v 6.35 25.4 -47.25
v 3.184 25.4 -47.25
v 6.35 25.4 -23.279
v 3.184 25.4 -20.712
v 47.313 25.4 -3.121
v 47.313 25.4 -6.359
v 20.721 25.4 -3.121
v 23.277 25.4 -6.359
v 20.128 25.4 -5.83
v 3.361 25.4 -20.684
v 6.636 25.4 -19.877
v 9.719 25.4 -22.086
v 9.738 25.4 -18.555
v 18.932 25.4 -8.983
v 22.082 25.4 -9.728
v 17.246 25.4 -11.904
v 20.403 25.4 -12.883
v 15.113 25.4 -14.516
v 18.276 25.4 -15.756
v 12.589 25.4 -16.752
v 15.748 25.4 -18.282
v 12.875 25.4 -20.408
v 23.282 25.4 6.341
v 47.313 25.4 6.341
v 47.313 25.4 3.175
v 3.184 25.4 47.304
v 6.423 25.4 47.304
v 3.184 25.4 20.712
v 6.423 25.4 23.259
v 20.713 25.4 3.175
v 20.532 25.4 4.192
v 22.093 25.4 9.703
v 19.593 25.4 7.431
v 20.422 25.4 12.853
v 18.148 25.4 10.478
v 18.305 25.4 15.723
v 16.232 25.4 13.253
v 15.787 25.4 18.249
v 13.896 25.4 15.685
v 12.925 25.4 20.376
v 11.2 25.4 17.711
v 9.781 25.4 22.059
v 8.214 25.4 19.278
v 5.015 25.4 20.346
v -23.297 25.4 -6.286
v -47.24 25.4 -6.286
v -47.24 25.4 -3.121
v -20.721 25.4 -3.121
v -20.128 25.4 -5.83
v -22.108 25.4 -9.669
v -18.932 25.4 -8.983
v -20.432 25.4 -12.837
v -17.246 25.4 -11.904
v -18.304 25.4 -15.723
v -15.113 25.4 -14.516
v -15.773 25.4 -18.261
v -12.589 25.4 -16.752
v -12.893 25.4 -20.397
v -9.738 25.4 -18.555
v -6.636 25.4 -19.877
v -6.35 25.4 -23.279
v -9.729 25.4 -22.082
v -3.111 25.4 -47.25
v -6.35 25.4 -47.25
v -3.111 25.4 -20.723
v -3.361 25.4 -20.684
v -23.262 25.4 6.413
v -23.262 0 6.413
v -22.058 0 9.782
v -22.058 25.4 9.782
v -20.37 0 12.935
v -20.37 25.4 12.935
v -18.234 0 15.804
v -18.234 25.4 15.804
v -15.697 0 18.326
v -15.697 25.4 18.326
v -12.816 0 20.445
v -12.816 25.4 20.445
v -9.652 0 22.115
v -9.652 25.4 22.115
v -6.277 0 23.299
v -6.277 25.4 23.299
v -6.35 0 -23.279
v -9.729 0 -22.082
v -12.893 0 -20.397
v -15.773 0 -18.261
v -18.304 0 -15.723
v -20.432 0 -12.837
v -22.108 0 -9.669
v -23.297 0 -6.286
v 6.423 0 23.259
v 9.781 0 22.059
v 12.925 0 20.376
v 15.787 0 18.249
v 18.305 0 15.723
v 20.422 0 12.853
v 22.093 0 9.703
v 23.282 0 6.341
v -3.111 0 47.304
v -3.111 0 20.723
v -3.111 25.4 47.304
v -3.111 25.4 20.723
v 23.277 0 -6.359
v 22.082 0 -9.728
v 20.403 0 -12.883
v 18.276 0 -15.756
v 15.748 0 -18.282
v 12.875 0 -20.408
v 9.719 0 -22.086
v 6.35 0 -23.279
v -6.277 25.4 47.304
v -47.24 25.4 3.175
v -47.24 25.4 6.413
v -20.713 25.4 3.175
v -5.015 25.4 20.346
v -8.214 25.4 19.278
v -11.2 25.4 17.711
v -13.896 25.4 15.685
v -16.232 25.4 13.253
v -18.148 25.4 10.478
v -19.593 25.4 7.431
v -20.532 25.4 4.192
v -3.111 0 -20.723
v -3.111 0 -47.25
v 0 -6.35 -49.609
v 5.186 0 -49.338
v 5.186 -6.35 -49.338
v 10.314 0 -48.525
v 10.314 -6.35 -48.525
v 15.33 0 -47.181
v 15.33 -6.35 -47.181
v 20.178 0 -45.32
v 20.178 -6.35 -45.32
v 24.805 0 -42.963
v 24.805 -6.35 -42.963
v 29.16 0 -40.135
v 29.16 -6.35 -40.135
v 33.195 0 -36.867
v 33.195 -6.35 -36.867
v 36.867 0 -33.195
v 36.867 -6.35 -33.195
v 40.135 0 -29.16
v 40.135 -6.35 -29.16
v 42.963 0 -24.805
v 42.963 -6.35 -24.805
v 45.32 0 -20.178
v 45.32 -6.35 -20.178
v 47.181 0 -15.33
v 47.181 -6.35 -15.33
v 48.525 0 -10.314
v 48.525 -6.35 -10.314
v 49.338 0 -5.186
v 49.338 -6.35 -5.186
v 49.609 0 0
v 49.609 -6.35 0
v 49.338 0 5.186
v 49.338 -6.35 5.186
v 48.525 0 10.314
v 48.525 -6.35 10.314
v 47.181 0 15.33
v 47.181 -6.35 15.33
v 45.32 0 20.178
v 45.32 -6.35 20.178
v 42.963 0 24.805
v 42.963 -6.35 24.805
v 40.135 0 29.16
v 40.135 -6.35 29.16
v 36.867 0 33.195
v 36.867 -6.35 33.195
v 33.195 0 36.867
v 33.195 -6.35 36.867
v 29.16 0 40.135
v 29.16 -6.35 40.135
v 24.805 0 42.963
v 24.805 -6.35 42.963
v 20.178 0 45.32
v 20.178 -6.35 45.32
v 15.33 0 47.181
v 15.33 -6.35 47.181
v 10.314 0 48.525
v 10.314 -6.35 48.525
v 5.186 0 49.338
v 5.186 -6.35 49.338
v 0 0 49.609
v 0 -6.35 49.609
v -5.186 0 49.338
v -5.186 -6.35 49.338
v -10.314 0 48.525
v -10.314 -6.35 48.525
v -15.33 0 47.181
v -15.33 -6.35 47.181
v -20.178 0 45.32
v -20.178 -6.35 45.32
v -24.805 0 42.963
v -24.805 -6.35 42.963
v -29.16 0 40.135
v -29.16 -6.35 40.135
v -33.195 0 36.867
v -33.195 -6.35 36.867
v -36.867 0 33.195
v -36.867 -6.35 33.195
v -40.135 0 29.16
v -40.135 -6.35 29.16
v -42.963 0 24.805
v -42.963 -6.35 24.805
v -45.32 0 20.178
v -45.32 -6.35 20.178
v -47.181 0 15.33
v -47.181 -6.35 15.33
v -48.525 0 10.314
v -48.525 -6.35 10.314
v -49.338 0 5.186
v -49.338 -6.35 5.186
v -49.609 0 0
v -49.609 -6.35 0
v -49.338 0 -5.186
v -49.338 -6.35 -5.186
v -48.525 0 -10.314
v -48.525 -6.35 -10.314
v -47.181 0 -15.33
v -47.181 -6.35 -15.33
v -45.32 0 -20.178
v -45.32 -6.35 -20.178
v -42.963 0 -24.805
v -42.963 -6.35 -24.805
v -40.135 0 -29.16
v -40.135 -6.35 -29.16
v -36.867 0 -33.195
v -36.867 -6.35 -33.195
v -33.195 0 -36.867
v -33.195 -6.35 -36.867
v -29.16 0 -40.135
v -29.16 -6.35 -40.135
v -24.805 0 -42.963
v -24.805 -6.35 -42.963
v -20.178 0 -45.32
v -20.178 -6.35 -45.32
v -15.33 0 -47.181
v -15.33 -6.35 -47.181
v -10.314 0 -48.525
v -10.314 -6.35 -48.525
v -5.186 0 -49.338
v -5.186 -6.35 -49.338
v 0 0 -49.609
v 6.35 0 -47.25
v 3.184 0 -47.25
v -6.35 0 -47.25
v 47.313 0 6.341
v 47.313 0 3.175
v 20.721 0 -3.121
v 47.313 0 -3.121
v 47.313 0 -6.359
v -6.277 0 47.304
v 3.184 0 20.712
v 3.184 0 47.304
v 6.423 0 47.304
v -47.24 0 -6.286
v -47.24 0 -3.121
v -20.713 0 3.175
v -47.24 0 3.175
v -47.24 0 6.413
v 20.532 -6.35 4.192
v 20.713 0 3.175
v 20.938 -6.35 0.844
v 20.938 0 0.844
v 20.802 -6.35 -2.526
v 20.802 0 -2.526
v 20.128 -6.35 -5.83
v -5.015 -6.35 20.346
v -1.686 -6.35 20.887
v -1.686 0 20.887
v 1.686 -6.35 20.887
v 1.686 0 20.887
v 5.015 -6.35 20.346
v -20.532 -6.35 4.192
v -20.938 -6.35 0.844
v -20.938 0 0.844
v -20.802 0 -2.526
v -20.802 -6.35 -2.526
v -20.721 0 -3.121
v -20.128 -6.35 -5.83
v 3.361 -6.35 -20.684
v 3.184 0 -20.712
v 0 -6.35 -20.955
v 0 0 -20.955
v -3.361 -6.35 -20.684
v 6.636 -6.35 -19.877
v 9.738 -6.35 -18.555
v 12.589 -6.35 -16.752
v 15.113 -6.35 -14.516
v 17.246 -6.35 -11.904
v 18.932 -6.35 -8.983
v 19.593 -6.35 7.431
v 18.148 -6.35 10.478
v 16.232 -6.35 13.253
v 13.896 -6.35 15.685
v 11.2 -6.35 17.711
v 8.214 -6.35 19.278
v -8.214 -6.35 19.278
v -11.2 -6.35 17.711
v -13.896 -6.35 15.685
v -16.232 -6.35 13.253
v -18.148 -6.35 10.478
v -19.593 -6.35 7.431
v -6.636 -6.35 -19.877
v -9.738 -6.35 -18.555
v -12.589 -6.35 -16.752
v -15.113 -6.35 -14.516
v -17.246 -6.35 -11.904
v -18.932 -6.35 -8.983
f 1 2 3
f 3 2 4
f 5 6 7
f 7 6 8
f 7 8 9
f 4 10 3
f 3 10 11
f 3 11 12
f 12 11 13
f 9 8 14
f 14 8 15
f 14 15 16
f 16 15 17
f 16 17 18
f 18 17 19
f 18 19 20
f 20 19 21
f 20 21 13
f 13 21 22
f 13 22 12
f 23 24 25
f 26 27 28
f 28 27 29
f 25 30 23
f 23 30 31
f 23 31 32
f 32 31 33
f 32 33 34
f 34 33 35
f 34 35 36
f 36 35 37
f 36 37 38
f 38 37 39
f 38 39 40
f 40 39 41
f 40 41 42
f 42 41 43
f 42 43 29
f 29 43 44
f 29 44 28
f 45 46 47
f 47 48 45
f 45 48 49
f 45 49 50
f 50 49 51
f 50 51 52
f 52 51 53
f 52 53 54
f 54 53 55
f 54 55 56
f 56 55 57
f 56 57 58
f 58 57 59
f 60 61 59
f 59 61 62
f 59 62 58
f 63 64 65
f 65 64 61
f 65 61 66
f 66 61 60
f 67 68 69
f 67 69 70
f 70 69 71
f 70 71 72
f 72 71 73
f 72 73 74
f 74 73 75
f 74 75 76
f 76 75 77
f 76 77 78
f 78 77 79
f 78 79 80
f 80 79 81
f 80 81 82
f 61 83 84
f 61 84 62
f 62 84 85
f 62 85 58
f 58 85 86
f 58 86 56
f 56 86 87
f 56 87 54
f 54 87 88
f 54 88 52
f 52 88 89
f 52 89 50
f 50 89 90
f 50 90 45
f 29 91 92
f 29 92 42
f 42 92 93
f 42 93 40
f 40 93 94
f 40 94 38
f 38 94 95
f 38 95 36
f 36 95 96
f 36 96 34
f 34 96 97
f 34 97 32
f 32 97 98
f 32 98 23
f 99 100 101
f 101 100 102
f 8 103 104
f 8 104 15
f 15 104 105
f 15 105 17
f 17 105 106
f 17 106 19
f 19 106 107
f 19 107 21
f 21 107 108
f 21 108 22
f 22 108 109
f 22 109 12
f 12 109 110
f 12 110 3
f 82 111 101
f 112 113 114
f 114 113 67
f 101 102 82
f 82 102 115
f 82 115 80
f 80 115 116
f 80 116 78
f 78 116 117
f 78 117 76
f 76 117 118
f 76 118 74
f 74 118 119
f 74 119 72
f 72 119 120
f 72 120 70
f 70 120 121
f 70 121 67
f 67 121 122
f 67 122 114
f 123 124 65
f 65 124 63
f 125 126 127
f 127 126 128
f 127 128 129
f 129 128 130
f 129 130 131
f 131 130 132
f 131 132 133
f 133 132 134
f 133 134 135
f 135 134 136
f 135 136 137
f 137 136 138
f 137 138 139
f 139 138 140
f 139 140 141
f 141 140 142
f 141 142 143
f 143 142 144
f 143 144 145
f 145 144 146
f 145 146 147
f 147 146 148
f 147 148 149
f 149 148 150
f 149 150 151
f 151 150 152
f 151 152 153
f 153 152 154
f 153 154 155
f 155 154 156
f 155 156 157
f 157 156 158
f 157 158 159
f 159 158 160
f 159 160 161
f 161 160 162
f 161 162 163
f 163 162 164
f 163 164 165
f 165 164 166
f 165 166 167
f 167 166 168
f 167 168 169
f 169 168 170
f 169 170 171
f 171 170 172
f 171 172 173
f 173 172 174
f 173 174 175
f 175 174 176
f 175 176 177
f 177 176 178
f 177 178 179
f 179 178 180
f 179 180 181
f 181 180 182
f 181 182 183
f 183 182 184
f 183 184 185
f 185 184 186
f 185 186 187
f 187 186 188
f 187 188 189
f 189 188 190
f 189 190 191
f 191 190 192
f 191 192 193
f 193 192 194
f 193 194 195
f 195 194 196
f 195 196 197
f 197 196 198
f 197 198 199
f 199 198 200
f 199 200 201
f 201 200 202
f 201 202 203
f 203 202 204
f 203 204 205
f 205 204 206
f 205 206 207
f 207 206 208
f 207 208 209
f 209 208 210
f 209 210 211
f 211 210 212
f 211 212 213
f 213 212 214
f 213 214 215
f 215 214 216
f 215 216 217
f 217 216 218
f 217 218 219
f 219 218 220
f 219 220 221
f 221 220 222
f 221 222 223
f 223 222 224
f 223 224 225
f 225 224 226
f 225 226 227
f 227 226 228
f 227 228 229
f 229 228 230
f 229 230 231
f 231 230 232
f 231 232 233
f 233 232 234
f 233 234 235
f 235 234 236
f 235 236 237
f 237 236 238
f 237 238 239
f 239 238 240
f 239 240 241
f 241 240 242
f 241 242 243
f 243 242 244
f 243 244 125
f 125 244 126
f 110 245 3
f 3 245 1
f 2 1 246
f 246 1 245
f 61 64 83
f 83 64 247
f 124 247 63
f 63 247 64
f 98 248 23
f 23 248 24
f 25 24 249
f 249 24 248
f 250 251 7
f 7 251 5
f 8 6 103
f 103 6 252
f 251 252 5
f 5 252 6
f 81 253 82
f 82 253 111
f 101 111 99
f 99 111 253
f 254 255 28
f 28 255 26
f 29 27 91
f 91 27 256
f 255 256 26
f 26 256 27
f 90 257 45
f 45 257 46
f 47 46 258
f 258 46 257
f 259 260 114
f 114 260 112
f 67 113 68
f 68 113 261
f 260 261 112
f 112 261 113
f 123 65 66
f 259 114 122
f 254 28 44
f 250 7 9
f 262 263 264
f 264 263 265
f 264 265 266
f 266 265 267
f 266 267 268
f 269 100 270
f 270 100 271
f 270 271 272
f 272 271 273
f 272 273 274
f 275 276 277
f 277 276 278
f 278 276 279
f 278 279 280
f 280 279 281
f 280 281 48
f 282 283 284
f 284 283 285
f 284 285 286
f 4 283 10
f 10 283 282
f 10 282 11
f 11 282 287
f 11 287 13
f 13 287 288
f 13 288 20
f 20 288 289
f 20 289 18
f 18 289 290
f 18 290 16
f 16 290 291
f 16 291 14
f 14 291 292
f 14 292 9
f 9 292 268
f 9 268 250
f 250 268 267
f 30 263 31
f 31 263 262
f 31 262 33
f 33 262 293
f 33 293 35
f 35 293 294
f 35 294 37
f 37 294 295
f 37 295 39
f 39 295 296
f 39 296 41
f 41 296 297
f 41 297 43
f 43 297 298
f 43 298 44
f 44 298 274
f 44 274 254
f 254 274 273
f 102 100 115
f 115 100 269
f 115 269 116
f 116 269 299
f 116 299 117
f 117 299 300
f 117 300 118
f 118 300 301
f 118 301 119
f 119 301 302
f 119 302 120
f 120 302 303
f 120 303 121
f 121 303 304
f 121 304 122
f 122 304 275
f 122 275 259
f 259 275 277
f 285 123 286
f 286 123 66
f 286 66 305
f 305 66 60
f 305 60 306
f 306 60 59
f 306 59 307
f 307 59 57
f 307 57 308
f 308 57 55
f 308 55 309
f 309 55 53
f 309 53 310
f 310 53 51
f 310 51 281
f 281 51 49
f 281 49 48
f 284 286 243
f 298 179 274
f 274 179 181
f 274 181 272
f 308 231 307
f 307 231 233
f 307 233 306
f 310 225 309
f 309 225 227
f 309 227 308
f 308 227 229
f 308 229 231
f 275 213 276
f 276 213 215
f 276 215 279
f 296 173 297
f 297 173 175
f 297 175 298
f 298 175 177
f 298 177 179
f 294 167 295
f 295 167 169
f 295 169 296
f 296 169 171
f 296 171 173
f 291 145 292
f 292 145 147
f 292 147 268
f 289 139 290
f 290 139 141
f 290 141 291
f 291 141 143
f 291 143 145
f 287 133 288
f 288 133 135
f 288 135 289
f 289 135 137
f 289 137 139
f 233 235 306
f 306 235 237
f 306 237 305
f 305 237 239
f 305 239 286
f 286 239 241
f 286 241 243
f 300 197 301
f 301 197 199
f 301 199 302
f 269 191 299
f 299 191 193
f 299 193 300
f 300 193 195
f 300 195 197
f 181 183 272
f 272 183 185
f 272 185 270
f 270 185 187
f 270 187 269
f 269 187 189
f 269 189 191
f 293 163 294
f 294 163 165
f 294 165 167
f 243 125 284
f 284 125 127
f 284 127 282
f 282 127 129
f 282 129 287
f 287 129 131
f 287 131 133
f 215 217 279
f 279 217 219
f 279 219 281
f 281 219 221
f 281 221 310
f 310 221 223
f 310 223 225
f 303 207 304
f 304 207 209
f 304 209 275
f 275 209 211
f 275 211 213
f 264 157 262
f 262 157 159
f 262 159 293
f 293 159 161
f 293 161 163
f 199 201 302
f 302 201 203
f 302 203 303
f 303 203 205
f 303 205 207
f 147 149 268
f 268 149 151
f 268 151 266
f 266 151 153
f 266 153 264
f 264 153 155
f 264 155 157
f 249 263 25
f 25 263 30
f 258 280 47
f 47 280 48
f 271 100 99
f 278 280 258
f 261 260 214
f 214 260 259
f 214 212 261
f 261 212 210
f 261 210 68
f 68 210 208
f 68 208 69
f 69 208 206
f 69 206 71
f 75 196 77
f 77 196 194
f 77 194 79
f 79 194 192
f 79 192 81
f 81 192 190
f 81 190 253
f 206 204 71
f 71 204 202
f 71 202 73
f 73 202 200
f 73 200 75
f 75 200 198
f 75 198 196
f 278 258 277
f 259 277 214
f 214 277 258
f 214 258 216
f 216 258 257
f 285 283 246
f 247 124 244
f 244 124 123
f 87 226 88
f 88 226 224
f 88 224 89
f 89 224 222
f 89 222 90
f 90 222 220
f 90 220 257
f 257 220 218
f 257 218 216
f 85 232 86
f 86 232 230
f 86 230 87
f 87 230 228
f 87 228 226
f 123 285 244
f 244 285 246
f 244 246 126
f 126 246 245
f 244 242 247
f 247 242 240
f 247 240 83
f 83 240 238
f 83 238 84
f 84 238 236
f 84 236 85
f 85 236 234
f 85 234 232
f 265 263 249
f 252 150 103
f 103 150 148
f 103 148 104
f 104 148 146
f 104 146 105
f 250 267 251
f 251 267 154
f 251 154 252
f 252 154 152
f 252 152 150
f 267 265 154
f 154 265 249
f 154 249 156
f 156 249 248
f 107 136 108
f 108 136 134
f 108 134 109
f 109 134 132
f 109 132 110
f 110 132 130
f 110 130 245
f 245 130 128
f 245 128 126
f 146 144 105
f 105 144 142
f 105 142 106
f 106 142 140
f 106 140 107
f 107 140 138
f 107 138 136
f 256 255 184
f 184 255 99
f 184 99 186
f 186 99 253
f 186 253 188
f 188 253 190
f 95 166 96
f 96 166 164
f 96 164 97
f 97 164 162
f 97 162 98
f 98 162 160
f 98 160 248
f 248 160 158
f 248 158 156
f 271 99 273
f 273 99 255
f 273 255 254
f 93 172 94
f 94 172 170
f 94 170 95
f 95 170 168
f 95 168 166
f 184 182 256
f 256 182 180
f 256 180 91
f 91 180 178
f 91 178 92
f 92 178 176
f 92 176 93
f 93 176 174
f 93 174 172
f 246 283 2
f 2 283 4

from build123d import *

# Parameters (mm, degrees)
SKETCH1_R           = 24.13
SKETCH1_R_2         = 21.43125
BOSS_EXTRUDE1_DEPTH = 25.4
SKETCH2_W           = 6.223
SKETCH2_H           = 31.914566101
CUT_EXTRUDE1_DEPTH  = 25.4
CIRPATTERN1_COUNT   = 4
SKETCH3_R           = 24.13
SKETCH3_R_2         = 21.43125
BOSS_EXTRUDE3_DEPTH = 3.175
SKETCH4_R           = 49.609375
SKETCH4_R_2         = 24.13
BOSS_EXTRUDE4_DEPTH = 3.175
BOSS_EXTRUDE5_DEPTH = 25.4
SKETCH11_R          = 21.43125
SKETCH11_R_2        = 20.955
BOSS_EXTRUDE6_DEPTH = 28.575
SKETCH14_R          = 49.609375
SKETCH14_R_2        = 20.955
BOSS_EXTRUDE7_DEPTH = 3.175
SKETCH15_W          = 94.553098484
SKETCH15_H          = 6.29591516
CUT_EXTRUDE8_DEPTH  = 25.4
SKETCH16_W          = 6.29591516
SKETCH16_H          = 94.553098484
CUT_EXTRUDE9_DEPTH  = 25.4


with BuildPart() as part:
    # Sketch1 → Boss-Extrude1 (new body)
    with BuildSketch(Plane(origin=(0, 0, 0), x_dir=(1, 0, 0), z_dir=(0, 1, 0))):
        Circle(SKETCH1_R)
        Circle(SKETCH1_R_2, mode=Mode.SUBTRACT)
    extrude(amount=BOSS_EXTRUDE1_DEPTH)

    # Sketch2 → Cut-Extrude1 (cut)
    with BuildSketch(Plane.XY):
        with Locations((0, 15.957283051)):
            Rectangle(SKETCH2_W, SKETCH2_H)
    cut_extrude1 = extrude(amount=-CUT_EXTRUDE1_DEPTH, mode=Mode.SUBTRACT)

    # CirPattern1: Cut-Extrude1 ×4 about axis
    cirpattern1_axis = Axis((0, 0, 0), (0, 1, 0))
    for i in range(1, CIRPATTERN1_COUNT):
        add(cut_extrude1.rotate(cirpattern1_axis, i * 360 / CIRPATTERN1_COUNT), mode=Mode.SUBTRACT)

    # Sketch3 → Boss-Extrude3 (add)
    with BuildSketch(Plane.XZ):
        Circle(SKETCH3_R)
        Circle(SKETCH3_R_2, mode=Mode.SUBTRACT)
    extrude(amount=BOSS_EXTRUDE3_DEPTH)

    # Sketch4 → Boss-Extrude4 (add)
    with BuildSketch(Plane(origin=(0, -3.175, 0), x_dir=(-1, 0, 0), z_dir=(0, -1, 0))):
        Circle(SKETCH4_R)
        Circle(SKETCH4_R_2, mode=Mode.SUBTRACT)
    extrude(amount=-BOSS_EXTRUDE4_DEPTH)

    # Sketch6 → Boss-Extrude5 (add)
    with BuildSketch(Plane(origin=(0, 0, 0), x_dir=(1, 0, 0), z_dir=(0, 1, 0))):
        Polygon((3.1115, 21.204175162), (3.1115, 23.929621576), (3.1115, 47.249506822), (6.35, 47.249506822), (6.35, 22.127823022), align=None)
        Polygon((-3.1115, 21.204175162), (-3.1115, 23.929621576), (-3.1115, 47.249506822), (-6.35, 47.249506822), (-6.35, 22.127823022), align=None)
        Polygon((21.267675162, 3.12091516), (23.993121576, 3.12091516), (47.313006822, 3.12091516), (47.313006822, 6.35941516), (22.191323022, 6.35941516), align=None)
        Polygon((47.313006822, -3.10208484), (23.993121576, -3.10208484), (21.267675162, -3.10208484), (22.191323022, -6.34058484), (47.313006822, -6.34058484), align=None)
        Polygon((3.18441516, -21.258260002), (3.18441516, -23.983706416), (3.18441516, -47.303591662), (6.42291516, -47.303591662), (6.42291516, -22.181907862), align=None)
        Polygon((-3.03858484, -47.303591662), (-3.03858484, -23.983706416), (-3.03858484, -21.258260002), (-6.27708484, -22.181907862), (-6.27708484, -47.303591662), align=None)
        Polygon((-21.194760002, -3.175), (-23.920206416, -3.175), (-47.240091662, -3.175), (-47.240091662, -6.4135), (-22.118407862, -6.4135), align=None)
        Polygon((-47.240091662, 3.048), (-23.920206416, 3.048), (-21.194760002, 3.048), (-22.118407862, 6.2865), (-47.240091662, 6.2865), align=None)
    extrude(amount=BOSS_EXTRUDE5_DEPTH)

    # Sketch11 → Boss-Extrude6 (add)
    with BuildSketch(Plane.XZ.offset(3.175)):
        Circle(SKETCH11_R)
        Circle(SKETCH11_R_2, mode=Mode.SUBTRACT)
    extrude(amount=-BOSS_EXTRUDE6_DEPTH)

    # Sketch14 → Boss-Extrude7 (add)
    with BuildSketch(Plane.XZ.offset(3.175)):
        Circle(SKETCH14_R)
        Circle(SKETCH14_R_2, mode=Mode.SUBTRACT)
    extrude(amount=BOSS_EXTRUDE7_DEPTH)

    # Sketch15 → Cut-Extrude8 (cut)
    with BuildSketch(Plane(origin=(0, 25.4, 0), x_dir=(1, 0, 0), z_dir=(0, 1, 0))):
        with Locations((0.03645758, -0.02704242)):
            Rectangle(SKETCH15_W, SKETCH15_H)
    extrude(amount=-CUT_EXTRUDE8_DEPTH, mode=Mode.SUBTRACT)

    # Sketch16 → Cut-Extrude9 (cut)
    with BuildSketch(Plane(origin=(0, 25.4, 0), x_dir=(1, 0, 0), z_dir=(0, 1, 0))):
        with Locations((0.03645758, -0.02704242)):
            Rectangle(SKETCH16_W, SKETCH16_H)
    extrude(amount=-CUT_EXTRUDE9_DEPTH, mode=Mode.SUBTRACT)


solid = part.part
